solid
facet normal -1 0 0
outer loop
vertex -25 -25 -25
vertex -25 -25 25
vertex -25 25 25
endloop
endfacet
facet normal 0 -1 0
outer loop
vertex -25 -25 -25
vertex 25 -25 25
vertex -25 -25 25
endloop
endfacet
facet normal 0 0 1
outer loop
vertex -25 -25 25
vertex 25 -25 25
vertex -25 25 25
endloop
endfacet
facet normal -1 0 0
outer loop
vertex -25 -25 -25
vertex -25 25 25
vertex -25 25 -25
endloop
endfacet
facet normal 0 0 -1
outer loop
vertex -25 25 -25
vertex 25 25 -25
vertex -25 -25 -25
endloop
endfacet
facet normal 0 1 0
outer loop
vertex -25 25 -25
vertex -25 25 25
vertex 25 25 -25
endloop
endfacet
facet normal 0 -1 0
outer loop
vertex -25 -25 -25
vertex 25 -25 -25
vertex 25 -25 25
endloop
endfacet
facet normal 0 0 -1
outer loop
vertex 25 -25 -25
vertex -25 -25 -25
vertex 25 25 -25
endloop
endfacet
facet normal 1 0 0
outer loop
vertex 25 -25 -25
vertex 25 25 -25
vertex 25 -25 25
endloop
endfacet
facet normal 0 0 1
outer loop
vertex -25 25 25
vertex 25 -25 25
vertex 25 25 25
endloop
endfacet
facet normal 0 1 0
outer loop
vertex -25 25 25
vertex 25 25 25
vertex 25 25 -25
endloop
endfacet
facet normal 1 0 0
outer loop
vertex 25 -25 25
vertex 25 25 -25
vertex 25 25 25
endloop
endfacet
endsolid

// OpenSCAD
cube([50, 50, 50], center = true);
cylinder(d = 20, h = 50, center = true, $fn = 64);
